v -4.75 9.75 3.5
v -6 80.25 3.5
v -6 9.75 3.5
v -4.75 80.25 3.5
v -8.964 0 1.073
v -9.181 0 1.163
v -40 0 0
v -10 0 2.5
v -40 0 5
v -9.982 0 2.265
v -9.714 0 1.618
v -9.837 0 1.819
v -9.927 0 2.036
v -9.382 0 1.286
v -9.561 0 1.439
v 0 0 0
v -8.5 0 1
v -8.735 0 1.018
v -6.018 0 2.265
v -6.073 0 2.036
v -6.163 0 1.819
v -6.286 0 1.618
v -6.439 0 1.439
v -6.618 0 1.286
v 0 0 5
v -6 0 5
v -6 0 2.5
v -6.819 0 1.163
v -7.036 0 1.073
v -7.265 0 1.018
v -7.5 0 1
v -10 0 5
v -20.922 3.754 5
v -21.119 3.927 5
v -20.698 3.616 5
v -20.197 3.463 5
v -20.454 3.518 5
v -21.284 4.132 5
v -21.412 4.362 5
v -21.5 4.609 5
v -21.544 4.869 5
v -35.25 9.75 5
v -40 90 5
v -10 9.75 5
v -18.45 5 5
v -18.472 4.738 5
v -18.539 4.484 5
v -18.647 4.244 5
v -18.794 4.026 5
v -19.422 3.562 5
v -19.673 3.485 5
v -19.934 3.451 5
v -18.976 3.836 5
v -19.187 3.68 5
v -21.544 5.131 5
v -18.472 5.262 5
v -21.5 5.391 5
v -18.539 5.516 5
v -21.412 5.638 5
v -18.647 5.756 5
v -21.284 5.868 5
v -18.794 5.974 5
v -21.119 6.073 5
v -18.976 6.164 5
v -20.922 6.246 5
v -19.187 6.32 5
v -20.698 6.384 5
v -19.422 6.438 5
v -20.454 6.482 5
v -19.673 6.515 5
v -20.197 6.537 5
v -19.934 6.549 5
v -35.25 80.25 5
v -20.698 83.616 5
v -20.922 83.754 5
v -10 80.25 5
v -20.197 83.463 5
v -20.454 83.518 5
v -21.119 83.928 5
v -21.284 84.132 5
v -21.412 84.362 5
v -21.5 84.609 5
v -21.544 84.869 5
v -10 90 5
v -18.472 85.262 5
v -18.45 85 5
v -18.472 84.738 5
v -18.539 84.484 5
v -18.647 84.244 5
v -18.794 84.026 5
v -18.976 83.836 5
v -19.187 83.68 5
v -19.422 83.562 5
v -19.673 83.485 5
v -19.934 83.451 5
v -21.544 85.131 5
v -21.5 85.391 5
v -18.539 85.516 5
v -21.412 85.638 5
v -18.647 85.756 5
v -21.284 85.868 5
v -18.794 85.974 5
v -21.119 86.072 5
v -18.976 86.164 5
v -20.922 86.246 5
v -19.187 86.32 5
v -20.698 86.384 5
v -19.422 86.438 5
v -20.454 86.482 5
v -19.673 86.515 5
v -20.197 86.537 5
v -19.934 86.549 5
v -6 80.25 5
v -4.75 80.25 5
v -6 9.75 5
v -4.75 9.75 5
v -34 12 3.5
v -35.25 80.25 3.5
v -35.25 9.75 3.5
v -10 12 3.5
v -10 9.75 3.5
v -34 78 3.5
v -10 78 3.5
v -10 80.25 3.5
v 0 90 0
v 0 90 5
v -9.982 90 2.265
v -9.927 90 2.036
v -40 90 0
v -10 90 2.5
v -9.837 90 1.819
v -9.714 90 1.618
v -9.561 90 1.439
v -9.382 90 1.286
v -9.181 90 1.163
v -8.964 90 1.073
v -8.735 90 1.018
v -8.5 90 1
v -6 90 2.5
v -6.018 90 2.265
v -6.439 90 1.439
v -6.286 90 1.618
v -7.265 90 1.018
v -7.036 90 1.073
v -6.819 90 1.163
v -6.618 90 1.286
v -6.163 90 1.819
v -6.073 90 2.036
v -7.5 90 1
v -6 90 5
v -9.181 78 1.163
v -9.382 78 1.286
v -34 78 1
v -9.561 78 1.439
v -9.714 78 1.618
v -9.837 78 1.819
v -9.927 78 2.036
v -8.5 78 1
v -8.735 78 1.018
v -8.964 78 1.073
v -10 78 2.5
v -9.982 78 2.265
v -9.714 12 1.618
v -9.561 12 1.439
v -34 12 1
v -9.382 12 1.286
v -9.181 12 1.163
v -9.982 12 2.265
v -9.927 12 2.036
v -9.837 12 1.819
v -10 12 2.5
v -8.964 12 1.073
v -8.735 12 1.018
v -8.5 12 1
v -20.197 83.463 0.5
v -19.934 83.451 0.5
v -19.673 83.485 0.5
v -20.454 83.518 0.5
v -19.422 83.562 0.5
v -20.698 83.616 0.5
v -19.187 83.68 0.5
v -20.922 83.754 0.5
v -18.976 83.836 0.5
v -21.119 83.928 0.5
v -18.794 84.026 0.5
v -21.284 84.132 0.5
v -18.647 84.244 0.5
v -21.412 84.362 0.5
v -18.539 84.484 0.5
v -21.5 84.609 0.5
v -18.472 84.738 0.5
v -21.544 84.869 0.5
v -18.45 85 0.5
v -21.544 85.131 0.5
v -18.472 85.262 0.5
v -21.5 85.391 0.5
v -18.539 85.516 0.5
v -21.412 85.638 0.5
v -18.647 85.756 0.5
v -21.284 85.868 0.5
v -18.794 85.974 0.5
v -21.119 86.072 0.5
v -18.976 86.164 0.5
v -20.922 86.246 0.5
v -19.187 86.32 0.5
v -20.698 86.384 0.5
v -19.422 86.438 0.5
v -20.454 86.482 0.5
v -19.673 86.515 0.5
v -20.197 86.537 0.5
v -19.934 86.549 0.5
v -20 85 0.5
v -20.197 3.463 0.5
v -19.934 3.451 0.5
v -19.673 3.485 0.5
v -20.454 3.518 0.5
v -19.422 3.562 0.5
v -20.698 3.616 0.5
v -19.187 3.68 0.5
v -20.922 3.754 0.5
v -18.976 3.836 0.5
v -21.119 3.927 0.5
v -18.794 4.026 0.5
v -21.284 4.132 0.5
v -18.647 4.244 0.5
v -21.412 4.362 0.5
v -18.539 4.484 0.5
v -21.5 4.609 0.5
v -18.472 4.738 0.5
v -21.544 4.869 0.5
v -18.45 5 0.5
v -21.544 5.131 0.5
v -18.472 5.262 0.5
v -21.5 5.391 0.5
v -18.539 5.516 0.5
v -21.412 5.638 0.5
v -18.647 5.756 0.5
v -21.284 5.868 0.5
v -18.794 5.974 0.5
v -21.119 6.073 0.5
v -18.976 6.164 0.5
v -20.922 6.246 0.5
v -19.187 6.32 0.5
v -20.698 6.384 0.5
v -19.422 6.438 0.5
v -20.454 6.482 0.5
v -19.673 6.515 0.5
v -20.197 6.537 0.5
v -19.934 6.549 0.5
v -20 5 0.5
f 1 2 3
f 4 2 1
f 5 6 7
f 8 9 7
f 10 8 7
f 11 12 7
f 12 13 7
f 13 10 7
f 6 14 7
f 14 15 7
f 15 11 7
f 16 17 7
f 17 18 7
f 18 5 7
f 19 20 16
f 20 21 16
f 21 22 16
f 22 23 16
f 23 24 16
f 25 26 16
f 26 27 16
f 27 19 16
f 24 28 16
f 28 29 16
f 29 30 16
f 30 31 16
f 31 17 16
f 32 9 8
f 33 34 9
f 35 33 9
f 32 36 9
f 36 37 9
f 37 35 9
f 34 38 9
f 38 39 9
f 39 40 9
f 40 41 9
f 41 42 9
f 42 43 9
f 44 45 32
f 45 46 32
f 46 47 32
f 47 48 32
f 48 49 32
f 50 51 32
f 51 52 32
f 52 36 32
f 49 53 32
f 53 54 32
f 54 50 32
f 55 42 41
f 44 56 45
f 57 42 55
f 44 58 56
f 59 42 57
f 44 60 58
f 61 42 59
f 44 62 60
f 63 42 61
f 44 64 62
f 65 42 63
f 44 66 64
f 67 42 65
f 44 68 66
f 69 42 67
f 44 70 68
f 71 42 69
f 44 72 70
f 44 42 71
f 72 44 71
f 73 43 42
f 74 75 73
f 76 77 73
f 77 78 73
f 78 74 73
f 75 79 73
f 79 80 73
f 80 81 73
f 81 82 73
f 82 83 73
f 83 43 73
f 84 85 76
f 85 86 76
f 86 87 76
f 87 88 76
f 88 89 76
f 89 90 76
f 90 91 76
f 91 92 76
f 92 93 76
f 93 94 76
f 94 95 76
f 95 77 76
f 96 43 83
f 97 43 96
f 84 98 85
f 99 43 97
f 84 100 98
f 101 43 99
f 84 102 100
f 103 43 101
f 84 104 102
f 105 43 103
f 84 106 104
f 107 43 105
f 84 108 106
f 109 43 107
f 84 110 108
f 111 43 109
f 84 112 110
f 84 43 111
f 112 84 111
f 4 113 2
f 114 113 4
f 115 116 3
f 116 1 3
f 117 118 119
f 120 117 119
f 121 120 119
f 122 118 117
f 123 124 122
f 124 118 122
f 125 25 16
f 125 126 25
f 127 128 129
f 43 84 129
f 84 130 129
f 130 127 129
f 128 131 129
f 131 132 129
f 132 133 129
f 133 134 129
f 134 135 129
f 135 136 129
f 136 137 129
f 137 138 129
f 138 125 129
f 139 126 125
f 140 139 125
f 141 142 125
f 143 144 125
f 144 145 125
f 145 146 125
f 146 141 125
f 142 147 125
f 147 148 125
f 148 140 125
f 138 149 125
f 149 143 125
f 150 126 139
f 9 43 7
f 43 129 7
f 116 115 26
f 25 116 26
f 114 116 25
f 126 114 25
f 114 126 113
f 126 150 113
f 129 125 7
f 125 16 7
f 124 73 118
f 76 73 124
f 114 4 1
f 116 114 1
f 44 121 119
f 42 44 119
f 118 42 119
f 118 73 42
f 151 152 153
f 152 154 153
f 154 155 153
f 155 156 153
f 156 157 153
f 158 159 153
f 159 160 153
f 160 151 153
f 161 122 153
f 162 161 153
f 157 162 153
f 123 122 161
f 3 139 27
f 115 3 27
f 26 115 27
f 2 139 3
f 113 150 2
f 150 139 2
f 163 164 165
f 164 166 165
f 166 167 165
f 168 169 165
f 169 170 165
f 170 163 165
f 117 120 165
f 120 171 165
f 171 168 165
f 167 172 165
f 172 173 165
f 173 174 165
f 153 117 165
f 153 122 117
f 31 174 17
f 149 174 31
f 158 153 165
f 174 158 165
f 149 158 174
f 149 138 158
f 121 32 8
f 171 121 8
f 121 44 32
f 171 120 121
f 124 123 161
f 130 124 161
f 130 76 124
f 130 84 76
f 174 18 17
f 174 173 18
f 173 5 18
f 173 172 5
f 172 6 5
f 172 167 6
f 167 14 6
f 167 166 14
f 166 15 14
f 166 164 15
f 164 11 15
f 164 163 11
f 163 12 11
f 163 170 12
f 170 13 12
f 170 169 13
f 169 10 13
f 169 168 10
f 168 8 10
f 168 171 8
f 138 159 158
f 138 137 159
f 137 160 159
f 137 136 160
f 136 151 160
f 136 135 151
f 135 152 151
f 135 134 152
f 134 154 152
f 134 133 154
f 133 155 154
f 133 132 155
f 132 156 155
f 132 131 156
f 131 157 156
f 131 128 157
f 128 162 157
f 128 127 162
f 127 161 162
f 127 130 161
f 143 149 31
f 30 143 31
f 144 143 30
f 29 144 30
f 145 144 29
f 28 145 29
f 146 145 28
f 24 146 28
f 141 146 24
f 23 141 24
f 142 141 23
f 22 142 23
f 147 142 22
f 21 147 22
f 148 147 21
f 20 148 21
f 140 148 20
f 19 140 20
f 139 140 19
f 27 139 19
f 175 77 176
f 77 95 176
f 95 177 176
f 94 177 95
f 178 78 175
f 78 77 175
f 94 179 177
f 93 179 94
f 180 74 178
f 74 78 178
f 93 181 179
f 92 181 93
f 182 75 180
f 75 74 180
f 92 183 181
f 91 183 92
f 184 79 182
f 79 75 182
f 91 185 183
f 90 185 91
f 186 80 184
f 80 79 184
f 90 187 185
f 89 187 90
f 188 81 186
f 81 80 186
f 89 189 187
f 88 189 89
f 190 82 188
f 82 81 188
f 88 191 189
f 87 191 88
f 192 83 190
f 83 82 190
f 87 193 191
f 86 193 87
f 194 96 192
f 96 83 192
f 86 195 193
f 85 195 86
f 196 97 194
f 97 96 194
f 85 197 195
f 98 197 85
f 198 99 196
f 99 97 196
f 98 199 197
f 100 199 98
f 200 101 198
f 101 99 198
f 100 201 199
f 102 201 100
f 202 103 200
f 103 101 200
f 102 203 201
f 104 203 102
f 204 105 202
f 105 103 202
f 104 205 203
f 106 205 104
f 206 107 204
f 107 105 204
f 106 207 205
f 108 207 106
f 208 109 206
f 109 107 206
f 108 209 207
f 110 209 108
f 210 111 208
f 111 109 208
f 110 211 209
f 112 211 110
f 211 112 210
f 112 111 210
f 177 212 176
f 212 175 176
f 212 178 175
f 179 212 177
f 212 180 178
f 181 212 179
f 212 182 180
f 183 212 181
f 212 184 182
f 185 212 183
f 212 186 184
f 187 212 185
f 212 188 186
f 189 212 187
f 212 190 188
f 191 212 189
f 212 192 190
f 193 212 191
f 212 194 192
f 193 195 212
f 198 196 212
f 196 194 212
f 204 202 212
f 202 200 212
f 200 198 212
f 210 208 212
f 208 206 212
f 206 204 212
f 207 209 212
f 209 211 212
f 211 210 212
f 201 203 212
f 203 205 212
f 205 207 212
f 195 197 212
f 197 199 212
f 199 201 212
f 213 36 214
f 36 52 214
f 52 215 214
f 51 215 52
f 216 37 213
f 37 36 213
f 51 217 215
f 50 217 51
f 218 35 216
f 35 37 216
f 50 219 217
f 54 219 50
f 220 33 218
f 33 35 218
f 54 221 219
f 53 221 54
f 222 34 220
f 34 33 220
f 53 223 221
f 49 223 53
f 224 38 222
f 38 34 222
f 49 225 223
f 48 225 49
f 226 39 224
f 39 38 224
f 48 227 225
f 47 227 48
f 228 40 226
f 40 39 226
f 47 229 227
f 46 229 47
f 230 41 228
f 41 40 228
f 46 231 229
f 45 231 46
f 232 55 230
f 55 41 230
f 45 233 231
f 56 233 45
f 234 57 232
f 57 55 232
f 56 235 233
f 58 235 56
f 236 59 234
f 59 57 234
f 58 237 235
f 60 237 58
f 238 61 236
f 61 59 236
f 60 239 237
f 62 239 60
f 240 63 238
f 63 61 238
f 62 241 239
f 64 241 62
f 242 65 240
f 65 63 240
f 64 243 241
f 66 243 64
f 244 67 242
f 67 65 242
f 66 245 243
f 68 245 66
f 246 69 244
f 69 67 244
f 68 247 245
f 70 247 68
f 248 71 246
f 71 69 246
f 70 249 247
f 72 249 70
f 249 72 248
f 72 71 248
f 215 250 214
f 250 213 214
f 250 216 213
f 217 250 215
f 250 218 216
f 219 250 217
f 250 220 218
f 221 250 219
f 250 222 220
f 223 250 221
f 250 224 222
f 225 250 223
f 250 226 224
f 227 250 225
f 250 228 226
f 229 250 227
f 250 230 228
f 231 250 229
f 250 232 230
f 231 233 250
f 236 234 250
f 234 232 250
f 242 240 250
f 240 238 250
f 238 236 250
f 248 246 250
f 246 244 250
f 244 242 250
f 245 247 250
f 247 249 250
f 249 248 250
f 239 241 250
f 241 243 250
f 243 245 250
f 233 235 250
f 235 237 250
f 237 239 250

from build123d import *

# Parameters (mm, degrees)
SKETCH1_W           = 90
SKETCH1_H           = 40
BOSS_EXTRUDE1_DEPTH = 5
SKETCH2_W           = 30.5
SKETCH2_H           = 70.5
CUT_EXTRUDE1_DEPTH  = 1.5
SKETCH3_W           = 28
SKETCH3_H           = 66
CUT_EXTRUDE2_DEPTH  = 2.5
SKETCH4_W           = 4
SKETCH4_H           = 4
CUT_EXTRUDE3_DEPTH  = 99.615414617
FILLET1_R           = 1.5
SKETCH6_R           = 1.55
CUT_EXTRUDE5_DEPTH  = 4.5
SKETCH7_R           = 1.55
CUT_EXTRUDE6_DEPTH  = 4.5


with BuildPart() as part:
    # Sketch1 → Boss-Extrude1 (new body)
    with BuildSketch(Plane(origin=(0, 0, 0), x_dir=(0, 1, 0), z_dir=(0, 0, 1))):
        with Locations((45, 20)):
            Rectangle(SKETCH1_W, SKETCH1_H)
    extrude(amount=BOSS_EXTRUDE1_DEPTH)

    # Sketch2 → Cut-Extrude1 (cut)
    with BuildSketch(Plane.XY.offset(5)):
        with Locations((-20, 45)):
            Rectangle(SKETCH2_W, SKETCH2_H)
    extrude(amount=-CUT_EXTRUDE1_DEPTH, mode=Mode.SUBTRACT)

    # Sketch3 → Cut-Extrude2 (cut)
    with BuildSketch(Plane.XY.offset(3.5)):
        with Locations((-20, 45)):
            Rectangle(SKETCH3_W, SKETCH3_H)
    extrude(amount=-CUT_EXTRUDE2_DEPTH, mode=Mode.SUBTRACT)

    # Sketch4 → Cut-Extrude3 (cut, through all)
    with BuildSketch(Plane.XZ):
        with Locations((-8, 3)):
            Rectangle(SKETCH4_W, SKETCH4_H)
    extrude(amount=-CUT_EXTRUDE3_DEPTH, mode=Mode.SUBTRACT)

    # Fillet1
    fillet1_edges = [part.edges().sort_by_distance(p)[0] for p in [
        (-6, 45, 1),
        (-10, 84, 1),
        (-10, 6, 1),
    ]]
    fillet(fillet1_edges, radius=FILLET1_R)

    # Sketch6 → Cut-Extrude5 (cut)
    with BuildSketch(Plane.XY.offset(5)):
        with Locations((-20, 85)):
            Circle(SKETCH6_R)
    extrude(amount=-CUT_EXTRUDE5_DEPTH, mode=Mode.SUBTRACT)

    # Sketch7 → Cut-Extrude6 (cut)
    with BuildSketch(Plane.XY.offset(5)):
        with Locations((-20, 5)):
            Circle(SKETCH7_R)
    extrude(amount=-CUT_EXTRUDE6_DEPTH, mode=Mode.SUBTRACT)


solid = part.part
